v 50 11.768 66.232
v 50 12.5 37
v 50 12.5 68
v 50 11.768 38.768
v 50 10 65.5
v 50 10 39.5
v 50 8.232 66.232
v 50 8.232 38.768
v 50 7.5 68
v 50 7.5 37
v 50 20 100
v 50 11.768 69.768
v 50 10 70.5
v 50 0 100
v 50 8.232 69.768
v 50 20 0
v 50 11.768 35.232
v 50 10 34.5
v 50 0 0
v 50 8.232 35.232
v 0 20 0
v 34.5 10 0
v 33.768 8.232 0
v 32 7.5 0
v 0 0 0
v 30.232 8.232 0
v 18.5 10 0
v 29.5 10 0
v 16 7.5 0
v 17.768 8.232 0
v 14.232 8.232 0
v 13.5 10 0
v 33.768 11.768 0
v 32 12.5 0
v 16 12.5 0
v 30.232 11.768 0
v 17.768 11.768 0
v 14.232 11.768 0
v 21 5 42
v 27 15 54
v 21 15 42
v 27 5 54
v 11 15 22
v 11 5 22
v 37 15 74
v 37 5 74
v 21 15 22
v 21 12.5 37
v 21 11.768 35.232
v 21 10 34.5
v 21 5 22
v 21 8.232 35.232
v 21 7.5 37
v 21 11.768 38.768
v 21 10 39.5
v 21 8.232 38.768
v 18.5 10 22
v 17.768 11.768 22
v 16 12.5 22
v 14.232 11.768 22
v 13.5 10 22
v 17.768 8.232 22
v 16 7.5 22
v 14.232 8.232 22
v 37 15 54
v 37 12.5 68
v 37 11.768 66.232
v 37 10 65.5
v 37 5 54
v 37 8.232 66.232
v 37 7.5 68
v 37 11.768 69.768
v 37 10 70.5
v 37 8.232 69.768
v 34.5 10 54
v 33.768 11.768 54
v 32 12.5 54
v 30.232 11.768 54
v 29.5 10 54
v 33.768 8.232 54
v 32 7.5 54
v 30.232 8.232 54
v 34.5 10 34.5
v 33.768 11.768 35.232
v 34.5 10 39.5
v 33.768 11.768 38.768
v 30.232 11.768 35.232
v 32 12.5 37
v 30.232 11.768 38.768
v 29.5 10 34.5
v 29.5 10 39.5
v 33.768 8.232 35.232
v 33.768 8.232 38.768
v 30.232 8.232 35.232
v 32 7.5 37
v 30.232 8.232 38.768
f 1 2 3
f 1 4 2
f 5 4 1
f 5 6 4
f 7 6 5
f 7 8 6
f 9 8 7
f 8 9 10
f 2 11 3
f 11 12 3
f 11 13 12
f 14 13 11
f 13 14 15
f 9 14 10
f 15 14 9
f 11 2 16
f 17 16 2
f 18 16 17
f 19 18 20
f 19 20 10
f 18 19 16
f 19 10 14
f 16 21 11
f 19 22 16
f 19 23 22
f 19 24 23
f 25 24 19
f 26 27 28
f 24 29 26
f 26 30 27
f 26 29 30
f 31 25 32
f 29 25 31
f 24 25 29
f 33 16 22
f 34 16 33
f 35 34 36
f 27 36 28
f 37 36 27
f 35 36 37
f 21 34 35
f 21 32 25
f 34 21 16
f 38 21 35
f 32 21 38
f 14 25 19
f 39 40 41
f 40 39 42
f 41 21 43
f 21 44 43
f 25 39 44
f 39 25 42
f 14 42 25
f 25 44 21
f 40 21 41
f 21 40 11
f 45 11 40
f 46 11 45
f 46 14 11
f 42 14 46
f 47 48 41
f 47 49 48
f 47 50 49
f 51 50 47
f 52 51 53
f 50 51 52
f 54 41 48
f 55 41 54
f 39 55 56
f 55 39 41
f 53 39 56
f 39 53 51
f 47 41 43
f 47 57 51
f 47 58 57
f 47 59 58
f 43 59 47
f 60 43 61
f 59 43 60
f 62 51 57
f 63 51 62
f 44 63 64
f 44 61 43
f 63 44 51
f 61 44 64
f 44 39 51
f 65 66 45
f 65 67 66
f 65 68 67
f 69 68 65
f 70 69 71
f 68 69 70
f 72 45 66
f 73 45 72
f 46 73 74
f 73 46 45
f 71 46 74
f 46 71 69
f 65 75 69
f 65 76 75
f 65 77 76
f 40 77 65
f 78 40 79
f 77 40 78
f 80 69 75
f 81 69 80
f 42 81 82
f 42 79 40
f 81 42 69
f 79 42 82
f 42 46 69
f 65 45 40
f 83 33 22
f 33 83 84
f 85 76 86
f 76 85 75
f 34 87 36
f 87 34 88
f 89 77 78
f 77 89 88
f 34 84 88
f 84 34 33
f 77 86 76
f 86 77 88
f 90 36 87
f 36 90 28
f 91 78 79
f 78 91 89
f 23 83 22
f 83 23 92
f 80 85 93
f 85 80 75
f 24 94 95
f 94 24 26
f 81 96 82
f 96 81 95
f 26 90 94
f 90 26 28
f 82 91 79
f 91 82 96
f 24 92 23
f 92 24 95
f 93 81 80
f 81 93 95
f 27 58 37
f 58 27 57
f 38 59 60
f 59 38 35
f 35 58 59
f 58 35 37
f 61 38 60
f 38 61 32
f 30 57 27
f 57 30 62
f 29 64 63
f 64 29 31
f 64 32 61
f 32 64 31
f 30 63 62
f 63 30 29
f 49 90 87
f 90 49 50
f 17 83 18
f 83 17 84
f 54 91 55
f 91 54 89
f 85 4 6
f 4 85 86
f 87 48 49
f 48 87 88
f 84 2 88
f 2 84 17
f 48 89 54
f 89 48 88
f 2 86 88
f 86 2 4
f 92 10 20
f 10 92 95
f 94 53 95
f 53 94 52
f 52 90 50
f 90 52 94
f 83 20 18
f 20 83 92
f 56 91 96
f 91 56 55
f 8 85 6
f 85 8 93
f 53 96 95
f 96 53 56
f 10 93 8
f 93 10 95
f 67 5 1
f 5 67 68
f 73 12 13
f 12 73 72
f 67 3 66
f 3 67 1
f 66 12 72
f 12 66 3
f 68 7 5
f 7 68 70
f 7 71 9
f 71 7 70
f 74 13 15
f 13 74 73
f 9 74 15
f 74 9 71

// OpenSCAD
difference() {
cube([50,20,100]);
    rotate([0,atan(50/100),0])translate([-50,-1,0])cube([50,22,200]);
    translate([11,5,22])cube([10,10,50]);
    translate([27,5,54])cube([10,10,50]);
    translate([32,10,-1])cylinder(d=5,h=100);
    translate([16,10,-1])cylinder(d=5,h=100);
    translate([0,10,37])rotate([0,90,0])cylinder(d=5,h=100);
    translate([0,10,68])rotate([0,90,0])cylinder(d=5,h=100);
}
